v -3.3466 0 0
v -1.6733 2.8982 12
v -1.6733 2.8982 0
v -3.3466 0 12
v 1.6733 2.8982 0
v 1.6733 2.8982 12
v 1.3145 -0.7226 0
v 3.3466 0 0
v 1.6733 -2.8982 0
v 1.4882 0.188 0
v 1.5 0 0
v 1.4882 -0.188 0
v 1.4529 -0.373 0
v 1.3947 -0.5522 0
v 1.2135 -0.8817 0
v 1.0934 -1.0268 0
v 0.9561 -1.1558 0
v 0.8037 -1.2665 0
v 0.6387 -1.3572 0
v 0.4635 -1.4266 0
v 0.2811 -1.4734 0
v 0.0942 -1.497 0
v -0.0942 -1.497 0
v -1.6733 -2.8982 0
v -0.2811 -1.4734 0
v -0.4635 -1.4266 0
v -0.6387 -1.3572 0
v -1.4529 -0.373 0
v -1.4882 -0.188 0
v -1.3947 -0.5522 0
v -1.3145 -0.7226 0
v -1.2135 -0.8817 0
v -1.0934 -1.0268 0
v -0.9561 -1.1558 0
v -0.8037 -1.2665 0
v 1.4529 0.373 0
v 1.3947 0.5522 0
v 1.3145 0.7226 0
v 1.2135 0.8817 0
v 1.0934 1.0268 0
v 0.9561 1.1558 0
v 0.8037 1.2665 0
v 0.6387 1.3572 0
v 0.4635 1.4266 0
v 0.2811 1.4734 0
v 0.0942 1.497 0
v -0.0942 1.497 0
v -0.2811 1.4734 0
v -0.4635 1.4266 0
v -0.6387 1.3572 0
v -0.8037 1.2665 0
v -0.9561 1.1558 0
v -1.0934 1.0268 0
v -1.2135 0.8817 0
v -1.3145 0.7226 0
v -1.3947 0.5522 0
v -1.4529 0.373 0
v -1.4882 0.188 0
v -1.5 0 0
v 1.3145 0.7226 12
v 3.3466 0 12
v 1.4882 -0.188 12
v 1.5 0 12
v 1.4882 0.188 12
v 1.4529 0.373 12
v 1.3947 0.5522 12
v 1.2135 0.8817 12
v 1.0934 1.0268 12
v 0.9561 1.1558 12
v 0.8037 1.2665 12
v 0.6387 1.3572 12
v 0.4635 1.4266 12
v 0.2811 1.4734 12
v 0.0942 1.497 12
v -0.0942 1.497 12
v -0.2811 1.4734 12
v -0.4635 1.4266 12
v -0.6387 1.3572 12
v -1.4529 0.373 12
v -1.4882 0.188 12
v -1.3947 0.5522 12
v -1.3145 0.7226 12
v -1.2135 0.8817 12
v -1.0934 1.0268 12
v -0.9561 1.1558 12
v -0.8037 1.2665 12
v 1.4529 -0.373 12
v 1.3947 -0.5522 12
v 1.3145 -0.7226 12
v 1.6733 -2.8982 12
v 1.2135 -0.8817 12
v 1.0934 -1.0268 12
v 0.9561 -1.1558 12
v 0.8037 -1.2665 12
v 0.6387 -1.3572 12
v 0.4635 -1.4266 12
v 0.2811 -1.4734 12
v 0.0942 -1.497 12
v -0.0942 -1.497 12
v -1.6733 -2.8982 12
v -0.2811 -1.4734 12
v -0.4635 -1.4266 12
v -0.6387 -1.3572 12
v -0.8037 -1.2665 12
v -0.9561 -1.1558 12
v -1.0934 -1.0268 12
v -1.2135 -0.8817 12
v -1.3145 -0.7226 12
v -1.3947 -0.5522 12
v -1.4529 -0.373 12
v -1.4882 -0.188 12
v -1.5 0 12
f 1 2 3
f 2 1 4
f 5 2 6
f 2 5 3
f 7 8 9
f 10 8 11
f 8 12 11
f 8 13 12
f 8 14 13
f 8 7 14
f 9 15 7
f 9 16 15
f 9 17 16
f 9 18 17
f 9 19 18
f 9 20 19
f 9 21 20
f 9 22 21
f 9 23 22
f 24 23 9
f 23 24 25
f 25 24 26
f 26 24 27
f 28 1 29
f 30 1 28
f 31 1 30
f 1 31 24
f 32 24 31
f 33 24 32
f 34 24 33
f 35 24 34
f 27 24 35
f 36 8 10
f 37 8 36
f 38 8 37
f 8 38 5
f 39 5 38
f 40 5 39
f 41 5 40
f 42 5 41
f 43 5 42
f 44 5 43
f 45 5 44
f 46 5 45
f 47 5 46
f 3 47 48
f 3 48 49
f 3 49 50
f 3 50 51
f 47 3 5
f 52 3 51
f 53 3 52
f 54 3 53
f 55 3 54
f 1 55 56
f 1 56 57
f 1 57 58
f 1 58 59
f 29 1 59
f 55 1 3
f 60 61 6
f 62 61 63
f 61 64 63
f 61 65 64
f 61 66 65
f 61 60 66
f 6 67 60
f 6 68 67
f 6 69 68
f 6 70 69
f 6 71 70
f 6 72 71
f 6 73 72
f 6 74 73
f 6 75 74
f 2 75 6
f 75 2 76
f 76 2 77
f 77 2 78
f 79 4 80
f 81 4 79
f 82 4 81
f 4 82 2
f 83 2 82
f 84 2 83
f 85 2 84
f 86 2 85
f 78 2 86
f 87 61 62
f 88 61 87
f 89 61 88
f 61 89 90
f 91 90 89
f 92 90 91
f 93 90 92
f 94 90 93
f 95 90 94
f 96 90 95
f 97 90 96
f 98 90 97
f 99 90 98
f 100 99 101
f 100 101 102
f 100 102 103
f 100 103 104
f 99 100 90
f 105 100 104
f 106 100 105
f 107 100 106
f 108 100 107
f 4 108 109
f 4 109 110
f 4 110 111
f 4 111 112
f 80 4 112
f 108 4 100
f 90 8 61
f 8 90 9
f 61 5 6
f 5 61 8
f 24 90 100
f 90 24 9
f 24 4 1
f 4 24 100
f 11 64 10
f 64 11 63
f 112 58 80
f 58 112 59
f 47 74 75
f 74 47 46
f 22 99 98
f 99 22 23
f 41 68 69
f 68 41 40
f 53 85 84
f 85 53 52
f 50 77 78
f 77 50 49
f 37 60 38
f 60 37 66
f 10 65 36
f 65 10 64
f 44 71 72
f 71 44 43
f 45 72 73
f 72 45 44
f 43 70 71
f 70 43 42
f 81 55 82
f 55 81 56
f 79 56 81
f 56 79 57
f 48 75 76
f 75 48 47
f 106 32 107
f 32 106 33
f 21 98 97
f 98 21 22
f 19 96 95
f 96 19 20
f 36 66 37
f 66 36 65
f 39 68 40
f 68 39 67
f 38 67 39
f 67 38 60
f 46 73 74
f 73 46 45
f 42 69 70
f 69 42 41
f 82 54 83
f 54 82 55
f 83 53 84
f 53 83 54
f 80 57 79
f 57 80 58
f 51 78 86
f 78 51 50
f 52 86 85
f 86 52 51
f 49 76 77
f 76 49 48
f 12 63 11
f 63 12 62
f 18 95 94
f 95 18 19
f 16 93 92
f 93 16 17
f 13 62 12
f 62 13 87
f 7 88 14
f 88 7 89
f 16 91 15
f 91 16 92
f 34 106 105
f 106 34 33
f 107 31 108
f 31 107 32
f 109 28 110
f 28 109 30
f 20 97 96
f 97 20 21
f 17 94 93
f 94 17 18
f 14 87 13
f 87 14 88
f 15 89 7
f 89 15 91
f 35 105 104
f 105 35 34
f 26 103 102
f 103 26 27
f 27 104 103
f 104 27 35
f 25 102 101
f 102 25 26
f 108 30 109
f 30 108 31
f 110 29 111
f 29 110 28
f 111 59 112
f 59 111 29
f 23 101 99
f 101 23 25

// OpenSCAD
$fn = 50;


difference() {
	union() {
		translate(v = [0, 0, 0]) {
			rotate(a = [0, 0, 0]) {
				translate(v = [0, 0, 0]) {
					rotate(a = [0, 0, 0]) {
						linear_extrude(height = 12) {
							polygon(points = [[3.3466000000, 0.0000000000], [1.6733000000, 2.8982406163], [-1.6733000000, 2.8982406163], [-3.3466000000, 0.0000000000], [-1.6733000000, -2.8982406163], [1.6733000000, -2.8982406163]]);
						}
					}
				}
			}
		}
	}
	union() {
		translate(v = [0, 0, 0]) {
			rotate(a = [0, 0, 0]) {
				cylinder(h = 12, r = 1.5000000000);
			}
		}
	}
}
